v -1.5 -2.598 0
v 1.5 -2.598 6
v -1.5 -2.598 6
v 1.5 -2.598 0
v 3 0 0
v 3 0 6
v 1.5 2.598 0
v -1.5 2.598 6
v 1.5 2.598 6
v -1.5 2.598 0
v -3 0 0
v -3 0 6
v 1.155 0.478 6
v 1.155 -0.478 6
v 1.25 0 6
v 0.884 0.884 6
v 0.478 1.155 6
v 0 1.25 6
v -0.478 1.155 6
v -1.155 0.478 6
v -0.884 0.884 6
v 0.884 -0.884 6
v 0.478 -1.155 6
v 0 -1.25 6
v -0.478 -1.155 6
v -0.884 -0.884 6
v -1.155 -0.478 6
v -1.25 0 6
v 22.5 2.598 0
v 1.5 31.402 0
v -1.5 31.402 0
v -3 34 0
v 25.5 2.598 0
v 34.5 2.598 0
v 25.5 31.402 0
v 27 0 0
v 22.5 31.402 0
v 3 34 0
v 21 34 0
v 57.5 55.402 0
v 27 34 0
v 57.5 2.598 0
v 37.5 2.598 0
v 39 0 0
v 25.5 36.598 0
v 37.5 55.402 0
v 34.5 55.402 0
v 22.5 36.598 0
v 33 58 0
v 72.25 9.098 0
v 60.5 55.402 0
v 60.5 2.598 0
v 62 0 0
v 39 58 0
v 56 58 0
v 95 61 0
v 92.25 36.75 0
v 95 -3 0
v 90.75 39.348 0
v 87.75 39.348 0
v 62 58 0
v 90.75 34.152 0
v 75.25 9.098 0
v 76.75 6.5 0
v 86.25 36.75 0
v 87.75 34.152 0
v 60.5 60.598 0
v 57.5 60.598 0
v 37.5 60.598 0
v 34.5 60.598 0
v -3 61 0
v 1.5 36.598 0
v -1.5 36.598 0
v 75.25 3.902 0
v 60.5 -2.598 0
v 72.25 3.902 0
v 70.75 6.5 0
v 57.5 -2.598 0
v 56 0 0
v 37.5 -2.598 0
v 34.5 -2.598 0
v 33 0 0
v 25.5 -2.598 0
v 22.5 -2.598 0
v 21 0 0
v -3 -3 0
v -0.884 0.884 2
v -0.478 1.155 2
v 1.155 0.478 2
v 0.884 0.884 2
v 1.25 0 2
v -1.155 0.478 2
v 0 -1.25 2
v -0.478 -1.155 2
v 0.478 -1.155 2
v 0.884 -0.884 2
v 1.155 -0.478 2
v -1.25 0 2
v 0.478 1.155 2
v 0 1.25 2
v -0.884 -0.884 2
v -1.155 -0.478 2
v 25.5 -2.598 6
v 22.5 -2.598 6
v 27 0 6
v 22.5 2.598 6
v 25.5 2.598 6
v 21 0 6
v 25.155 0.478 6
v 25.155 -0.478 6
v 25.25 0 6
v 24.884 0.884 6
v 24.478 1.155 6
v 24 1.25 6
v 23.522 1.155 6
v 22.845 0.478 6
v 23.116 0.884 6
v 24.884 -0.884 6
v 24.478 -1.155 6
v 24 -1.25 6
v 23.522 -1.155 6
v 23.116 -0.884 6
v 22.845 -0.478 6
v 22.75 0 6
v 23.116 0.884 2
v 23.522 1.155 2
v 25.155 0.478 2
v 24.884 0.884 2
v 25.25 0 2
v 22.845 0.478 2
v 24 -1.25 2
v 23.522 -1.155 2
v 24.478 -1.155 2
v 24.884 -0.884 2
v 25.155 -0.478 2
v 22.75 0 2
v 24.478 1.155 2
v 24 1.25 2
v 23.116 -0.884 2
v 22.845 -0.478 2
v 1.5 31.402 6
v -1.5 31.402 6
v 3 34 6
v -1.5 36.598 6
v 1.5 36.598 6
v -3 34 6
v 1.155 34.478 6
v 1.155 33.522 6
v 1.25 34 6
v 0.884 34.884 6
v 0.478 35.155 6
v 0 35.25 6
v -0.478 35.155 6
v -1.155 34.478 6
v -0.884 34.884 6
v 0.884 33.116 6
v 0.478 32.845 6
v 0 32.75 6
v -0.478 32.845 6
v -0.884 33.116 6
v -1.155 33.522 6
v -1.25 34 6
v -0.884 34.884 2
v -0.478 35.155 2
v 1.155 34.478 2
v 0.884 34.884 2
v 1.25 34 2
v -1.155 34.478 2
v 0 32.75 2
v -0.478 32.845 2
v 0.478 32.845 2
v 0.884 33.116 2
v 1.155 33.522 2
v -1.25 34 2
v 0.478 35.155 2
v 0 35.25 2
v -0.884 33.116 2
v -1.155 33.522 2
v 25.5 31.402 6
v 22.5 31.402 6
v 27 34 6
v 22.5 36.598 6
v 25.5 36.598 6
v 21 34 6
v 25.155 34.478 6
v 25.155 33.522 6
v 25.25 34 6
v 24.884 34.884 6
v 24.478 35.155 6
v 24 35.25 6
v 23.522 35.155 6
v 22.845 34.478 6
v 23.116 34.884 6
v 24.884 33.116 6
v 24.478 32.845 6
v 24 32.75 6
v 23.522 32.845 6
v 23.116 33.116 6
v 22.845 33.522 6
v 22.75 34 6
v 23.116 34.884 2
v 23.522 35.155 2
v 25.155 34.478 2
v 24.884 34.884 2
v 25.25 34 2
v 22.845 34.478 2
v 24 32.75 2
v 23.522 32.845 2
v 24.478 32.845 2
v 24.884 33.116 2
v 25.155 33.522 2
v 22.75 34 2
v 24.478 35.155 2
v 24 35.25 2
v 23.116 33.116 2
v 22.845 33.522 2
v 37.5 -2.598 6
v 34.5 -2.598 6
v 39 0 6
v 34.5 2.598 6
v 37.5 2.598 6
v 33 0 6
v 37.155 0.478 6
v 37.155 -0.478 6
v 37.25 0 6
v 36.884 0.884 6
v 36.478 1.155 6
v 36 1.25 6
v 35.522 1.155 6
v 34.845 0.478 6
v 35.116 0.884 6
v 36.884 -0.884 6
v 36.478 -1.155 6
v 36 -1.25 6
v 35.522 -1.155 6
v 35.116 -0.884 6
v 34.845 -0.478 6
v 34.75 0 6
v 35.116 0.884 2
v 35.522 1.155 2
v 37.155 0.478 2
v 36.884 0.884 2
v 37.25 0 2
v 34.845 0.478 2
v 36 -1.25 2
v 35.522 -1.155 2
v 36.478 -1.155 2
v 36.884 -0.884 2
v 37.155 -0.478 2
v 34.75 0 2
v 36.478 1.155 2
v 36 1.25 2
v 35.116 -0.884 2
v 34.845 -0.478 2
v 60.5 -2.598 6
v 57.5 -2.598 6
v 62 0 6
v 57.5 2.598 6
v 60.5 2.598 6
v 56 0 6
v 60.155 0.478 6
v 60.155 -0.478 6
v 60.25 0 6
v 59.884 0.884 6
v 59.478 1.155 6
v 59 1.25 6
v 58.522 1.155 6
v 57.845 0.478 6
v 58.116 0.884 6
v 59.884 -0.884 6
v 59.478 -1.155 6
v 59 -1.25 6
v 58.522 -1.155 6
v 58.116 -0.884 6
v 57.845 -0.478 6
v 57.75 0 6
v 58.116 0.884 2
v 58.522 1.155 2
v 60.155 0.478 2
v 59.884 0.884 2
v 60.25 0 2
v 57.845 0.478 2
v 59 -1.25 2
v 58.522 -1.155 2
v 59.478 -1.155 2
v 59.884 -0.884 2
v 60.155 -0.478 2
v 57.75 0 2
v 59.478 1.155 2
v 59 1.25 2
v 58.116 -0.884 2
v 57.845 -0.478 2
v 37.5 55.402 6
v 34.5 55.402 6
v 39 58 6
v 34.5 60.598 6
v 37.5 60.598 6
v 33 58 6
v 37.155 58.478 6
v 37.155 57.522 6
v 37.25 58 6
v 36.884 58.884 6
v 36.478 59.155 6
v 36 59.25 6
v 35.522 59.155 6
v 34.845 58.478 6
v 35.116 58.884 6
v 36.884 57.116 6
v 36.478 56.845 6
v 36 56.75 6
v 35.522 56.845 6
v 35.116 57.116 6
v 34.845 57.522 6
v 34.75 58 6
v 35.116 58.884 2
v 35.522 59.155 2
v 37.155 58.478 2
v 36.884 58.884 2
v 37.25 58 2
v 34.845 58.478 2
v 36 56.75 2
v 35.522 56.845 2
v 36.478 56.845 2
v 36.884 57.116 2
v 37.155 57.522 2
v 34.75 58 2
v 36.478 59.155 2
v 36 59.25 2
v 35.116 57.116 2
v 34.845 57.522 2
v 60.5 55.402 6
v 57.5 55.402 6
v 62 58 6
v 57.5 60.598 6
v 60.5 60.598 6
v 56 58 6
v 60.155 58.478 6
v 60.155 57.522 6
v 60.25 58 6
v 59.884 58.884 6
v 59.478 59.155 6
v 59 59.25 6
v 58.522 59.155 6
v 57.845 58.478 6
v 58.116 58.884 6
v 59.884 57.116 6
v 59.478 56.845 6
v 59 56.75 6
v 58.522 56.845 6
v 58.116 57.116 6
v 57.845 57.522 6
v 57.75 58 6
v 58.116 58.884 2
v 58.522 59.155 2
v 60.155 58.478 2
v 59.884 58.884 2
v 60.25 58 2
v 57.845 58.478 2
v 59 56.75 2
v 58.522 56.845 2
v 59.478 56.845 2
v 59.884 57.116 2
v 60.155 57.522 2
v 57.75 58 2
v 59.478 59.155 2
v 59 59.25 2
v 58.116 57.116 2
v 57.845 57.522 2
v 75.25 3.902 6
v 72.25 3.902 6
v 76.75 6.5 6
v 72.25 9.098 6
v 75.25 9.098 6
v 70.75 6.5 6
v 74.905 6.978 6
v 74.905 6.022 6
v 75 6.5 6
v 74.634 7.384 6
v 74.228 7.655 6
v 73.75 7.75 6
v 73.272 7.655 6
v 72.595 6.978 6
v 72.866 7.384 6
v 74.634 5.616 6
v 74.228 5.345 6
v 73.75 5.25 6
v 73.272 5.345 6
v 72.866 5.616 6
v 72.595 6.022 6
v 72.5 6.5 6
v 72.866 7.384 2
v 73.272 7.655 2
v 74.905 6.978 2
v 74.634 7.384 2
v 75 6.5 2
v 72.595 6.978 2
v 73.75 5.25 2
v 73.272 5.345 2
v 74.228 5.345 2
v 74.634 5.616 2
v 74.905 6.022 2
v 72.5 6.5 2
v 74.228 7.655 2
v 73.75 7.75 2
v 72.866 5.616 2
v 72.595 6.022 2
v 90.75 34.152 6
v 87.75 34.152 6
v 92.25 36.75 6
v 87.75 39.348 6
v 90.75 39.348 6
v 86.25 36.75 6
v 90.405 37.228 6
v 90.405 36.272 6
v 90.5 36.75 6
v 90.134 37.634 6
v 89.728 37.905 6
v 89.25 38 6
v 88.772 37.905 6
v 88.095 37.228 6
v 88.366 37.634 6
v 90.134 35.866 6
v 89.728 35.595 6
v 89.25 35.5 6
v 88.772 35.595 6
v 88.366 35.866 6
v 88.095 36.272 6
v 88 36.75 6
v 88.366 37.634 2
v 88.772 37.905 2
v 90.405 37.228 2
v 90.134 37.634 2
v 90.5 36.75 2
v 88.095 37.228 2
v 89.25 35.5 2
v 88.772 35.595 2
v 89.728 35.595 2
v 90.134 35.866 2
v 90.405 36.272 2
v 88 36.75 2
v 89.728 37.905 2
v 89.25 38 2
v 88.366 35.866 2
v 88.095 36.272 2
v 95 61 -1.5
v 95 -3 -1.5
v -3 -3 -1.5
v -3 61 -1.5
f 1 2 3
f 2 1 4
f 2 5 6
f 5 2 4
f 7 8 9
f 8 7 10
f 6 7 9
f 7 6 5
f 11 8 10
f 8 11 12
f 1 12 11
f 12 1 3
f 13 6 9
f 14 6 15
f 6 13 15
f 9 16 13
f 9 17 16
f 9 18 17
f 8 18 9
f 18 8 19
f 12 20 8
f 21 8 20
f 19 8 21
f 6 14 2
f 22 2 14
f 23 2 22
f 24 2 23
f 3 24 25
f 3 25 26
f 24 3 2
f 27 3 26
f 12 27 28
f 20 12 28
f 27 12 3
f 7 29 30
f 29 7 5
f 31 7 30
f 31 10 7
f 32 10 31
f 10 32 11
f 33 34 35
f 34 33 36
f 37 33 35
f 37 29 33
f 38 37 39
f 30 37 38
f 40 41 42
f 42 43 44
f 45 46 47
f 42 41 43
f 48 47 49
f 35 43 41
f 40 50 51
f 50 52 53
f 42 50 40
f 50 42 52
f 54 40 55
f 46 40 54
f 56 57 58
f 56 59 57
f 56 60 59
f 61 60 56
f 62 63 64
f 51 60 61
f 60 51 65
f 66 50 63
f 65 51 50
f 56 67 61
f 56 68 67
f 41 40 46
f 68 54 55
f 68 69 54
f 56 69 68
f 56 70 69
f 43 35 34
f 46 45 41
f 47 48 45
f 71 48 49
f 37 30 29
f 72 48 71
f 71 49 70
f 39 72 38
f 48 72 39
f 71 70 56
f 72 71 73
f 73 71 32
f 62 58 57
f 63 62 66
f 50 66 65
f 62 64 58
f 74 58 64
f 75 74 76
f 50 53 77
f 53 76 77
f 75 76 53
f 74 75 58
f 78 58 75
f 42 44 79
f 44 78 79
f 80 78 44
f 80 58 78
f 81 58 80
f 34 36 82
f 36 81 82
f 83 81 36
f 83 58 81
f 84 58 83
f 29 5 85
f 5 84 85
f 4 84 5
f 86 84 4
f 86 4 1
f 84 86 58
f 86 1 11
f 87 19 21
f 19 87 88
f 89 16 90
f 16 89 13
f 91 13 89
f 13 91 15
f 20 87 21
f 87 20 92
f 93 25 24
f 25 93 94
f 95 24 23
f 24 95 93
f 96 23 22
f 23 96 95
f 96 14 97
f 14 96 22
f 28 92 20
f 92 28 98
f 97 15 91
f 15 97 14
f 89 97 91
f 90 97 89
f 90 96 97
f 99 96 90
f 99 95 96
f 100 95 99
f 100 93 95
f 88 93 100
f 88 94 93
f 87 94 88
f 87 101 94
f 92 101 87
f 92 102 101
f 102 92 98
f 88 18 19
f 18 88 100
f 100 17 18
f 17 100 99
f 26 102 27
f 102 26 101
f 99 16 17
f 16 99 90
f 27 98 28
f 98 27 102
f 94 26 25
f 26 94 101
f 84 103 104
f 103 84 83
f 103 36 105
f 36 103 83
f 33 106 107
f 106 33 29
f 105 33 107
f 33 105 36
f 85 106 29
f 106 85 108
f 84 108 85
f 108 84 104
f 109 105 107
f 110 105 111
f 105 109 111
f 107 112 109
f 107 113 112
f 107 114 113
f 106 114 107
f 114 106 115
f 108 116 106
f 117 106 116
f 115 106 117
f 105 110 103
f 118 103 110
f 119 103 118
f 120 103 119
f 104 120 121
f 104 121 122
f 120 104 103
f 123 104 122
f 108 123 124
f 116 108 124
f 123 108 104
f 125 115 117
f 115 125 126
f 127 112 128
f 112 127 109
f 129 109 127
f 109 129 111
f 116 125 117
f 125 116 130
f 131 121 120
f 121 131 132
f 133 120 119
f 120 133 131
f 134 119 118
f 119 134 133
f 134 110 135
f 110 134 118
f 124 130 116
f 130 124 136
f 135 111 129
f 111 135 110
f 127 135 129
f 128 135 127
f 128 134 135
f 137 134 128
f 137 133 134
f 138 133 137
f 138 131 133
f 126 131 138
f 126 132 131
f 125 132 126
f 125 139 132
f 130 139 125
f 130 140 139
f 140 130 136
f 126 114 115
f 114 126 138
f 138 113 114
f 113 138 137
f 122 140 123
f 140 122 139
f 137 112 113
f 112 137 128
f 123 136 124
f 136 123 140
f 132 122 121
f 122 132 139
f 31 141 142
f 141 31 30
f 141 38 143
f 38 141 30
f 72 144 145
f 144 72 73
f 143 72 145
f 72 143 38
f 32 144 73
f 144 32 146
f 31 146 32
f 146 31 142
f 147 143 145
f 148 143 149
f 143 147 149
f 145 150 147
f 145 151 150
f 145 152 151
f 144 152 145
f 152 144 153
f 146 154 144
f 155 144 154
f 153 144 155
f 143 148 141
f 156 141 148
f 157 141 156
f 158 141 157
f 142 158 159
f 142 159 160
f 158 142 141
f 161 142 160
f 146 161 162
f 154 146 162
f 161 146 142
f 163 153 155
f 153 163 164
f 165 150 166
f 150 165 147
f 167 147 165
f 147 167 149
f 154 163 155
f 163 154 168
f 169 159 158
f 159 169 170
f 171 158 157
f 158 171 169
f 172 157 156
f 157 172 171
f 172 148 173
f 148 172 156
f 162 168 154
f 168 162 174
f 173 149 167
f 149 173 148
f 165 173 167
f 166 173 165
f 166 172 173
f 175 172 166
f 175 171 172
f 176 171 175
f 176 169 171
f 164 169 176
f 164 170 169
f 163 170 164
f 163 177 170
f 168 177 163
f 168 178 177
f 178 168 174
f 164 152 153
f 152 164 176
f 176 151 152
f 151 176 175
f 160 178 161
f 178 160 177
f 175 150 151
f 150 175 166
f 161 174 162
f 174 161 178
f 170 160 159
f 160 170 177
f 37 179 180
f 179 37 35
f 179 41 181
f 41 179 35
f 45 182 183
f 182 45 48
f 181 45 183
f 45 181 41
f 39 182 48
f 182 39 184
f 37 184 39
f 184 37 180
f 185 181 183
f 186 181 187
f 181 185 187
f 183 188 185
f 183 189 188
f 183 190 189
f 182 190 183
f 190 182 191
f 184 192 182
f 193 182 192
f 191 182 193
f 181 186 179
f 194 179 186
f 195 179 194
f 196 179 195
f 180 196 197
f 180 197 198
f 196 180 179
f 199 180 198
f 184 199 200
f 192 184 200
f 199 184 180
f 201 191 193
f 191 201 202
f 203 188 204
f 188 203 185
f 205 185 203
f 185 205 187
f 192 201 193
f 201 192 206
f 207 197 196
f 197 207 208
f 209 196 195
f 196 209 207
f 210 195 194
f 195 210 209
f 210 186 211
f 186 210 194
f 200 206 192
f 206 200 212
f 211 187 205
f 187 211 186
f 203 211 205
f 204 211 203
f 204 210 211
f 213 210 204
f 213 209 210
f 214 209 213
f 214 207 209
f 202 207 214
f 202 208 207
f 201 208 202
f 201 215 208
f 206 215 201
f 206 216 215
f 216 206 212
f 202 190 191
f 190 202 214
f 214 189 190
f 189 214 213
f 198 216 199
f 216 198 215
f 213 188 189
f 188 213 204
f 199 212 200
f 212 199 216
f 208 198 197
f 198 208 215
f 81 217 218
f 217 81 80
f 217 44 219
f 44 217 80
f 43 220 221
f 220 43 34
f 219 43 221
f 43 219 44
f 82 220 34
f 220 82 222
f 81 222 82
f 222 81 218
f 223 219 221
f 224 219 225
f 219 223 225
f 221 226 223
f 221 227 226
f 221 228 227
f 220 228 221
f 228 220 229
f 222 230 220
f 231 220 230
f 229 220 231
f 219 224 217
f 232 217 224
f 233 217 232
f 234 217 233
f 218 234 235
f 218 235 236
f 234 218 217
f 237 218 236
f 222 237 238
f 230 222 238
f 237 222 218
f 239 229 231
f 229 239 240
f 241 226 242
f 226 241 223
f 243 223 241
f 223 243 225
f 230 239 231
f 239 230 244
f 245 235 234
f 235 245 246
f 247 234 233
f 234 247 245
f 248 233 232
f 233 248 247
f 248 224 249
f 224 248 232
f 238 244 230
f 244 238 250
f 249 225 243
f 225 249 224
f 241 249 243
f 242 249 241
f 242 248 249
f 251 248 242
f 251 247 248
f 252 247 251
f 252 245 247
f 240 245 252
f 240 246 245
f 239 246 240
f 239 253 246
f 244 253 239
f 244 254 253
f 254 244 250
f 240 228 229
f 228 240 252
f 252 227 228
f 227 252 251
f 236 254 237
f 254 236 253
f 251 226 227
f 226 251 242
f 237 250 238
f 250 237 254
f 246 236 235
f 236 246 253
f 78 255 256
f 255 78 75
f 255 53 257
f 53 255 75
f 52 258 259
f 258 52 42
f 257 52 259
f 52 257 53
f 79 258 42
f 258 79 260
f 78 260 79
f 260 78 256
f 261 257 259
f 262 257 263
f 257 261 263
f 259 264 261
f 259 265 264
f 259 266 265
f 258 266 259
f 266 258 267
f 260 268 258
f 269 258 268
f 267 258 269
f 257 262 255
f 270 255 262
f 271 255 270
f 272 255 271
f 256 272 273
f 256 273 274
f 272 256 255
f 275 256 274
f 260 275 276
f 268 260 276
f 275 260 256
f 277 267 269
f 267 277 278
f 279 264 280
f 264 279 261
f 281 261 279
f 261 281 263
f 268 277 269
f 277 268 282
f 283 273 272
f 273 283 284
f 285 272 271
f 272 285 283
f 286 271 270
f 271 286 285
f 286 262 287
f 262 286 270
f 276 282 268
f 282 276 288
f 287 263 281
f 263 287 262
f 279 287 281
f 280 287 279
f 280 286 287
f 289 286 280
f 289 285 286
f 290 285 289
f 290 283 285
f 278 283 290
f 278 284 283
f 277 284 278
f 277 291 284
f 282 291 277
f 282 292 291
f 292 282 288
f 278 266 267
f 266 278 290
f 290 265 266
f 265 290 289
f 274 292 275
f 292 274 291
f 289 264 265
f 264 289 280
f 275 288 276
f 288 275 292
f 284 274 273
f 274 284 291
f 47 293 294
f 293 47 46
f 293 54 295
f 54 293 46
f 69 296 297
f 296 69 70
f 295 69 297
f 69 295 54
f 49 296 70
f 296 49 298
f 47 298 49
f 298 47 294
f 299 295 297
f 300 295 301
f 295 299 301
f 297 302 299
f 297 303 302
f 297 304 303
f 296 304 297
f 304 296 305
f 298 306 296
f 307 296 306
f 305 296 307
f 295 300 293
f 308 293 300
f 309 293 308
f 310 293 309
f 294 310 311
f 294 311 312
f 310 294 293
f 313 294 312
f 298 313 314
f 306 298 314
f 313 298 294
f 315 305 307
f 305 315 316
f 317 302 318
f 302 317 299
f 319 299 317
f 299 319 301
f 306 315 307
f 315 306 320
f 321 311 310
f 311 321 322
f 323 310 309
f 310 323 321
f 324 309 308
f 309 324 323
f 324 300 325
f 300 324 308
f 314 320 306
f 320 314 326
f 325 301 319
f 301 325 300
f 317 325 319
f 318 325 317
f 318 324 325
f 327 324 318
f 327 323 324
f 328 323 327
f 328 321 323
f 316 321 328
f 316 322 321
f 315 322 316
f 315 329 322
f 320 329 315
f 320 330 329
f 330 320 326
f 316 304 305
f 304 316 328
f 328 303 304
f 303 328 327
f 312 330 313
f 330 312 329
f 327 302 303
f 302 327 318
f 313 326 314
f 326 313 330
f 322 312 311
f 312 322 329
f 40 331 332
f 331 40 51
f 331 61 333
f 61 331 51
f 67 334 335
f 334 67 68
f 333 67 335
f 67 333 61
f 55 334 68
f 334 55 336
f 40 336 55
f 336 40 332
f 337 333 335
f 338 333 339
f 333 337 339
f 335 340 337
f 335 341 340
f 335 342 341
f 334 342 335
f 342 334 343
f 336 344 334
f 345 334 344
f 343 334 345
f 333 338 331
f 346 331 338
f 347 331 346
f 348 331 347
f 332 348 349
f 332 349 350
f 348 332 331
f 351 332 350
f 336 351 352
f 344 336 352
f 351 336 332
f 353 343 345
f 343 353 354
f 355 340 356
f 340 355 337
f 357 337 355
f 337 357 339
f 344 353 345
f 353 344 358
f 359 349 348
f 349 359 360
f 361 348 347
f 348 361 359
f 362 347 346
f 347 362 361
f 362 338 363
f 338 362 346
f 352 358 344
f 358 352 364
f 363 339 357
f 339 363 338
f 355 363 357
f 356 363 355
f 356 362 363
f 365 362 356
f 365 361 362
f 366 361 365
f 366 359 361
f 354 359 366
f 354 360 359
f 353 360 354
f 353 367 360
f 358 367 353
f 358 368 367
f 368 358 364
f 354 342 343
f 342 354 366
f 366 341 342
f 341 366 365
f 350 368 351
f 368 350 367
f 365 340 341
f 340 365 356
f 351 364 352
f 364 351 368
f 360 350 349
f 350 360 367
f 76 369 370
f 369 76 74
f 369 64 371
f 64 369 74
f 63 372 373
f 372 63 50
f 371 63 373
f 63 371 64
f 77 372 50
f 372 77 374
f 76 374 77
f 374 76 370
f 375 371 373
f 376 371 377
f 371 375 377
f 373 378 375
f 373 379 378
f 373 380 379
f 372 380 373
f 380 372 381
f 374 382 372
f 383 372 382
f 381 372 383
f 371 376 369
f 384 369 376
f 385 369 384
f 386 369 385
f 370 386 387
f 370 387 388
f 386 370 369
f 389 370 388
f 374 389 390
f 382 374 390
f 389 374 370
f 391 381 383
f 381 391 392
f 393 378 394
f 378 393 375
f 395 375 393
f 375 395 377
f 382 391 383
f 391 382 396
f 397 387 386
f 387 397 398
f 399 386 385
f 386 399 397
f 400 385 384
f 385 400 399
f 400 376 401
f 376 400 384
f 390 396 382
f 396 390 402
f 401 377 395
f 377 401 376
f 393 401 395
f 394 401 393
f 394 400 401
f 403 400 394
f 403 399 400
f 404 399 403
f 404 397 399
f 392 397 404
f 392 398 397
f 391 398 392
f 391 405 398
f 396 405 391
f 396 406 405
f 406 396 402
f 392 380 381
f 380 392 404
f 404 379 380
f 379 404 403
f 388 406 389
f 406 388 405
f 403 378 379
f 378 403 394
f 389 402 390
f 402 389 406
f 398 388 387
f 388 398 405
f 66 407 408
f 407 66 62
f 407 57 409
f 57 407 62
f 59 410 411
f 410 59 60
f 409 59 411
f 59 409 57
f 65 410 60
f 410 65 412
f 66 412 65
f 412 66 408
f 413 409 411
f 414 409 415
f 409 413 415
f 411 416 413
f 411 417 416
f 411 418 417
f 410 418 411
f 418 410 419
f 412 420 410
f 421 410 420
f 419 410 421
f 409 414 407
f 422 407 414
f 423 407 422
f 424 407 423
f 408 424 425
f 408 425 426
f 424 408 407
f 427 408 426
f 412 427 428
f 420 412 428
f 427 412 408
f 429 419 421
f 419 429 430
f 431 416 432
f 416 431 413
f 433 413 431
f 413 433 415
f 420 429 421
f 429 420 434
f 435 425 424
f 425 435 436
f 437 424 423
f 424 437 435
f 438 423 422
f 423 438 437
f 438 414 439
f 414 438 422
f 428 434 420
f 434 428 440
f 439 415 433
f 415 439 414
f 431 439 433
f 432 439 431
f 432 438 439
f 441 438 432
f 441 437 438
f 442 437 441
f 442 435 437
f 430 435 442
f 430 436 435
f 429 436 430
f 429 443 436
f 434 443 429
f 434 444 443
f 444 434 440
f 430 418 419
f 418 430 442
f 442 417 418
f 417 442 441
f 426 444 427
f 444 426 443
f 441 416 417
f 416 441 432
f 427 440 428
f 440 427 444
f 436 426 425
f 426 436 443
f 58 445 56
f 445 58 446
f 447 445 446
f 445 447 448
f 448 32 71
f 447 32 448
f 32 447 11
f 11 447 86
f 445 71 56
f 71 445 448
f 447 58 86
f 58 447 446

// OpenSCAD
use <threads.scad>;

// base
translate([-3, -3, -1.5])
    cube([3 + 24 + 12 + 23 + 12 + 21 + 3, 3 + 58 + 3, 1.5]);

// pH Probe
standoff();
translate([24, 0, 0])
    standoff();
translate([0, 34, 0])
    standoff();
translate([24, 34, 0])
    standoff();
    
translate([24 + 12, 0, 0]) {
    // Pi Zero W.
    standoff();
    translate([23, 0, 0])
        standoff();
    translate([0, 58, 0])
        standoff();
    translate([23, 58, 0])
        standoff();
}

// 5v Buck Converter
translate([24 + 12 + 23 + 12, 0, 0]) {
    translate([2.75, 6.5, 0]) standoff();
    translate([21 - 2.75, 43.25 - 6.5, 0]) standoff();
    
}


module standoff(d = 6, h = 6) {
    difference() {
        cylinder(d = d, h = h, $fn = 6);
        translate([0, 0, h -4])
            cylinder(d = 2.5, h = 4, $fn = 16);
    }
}
